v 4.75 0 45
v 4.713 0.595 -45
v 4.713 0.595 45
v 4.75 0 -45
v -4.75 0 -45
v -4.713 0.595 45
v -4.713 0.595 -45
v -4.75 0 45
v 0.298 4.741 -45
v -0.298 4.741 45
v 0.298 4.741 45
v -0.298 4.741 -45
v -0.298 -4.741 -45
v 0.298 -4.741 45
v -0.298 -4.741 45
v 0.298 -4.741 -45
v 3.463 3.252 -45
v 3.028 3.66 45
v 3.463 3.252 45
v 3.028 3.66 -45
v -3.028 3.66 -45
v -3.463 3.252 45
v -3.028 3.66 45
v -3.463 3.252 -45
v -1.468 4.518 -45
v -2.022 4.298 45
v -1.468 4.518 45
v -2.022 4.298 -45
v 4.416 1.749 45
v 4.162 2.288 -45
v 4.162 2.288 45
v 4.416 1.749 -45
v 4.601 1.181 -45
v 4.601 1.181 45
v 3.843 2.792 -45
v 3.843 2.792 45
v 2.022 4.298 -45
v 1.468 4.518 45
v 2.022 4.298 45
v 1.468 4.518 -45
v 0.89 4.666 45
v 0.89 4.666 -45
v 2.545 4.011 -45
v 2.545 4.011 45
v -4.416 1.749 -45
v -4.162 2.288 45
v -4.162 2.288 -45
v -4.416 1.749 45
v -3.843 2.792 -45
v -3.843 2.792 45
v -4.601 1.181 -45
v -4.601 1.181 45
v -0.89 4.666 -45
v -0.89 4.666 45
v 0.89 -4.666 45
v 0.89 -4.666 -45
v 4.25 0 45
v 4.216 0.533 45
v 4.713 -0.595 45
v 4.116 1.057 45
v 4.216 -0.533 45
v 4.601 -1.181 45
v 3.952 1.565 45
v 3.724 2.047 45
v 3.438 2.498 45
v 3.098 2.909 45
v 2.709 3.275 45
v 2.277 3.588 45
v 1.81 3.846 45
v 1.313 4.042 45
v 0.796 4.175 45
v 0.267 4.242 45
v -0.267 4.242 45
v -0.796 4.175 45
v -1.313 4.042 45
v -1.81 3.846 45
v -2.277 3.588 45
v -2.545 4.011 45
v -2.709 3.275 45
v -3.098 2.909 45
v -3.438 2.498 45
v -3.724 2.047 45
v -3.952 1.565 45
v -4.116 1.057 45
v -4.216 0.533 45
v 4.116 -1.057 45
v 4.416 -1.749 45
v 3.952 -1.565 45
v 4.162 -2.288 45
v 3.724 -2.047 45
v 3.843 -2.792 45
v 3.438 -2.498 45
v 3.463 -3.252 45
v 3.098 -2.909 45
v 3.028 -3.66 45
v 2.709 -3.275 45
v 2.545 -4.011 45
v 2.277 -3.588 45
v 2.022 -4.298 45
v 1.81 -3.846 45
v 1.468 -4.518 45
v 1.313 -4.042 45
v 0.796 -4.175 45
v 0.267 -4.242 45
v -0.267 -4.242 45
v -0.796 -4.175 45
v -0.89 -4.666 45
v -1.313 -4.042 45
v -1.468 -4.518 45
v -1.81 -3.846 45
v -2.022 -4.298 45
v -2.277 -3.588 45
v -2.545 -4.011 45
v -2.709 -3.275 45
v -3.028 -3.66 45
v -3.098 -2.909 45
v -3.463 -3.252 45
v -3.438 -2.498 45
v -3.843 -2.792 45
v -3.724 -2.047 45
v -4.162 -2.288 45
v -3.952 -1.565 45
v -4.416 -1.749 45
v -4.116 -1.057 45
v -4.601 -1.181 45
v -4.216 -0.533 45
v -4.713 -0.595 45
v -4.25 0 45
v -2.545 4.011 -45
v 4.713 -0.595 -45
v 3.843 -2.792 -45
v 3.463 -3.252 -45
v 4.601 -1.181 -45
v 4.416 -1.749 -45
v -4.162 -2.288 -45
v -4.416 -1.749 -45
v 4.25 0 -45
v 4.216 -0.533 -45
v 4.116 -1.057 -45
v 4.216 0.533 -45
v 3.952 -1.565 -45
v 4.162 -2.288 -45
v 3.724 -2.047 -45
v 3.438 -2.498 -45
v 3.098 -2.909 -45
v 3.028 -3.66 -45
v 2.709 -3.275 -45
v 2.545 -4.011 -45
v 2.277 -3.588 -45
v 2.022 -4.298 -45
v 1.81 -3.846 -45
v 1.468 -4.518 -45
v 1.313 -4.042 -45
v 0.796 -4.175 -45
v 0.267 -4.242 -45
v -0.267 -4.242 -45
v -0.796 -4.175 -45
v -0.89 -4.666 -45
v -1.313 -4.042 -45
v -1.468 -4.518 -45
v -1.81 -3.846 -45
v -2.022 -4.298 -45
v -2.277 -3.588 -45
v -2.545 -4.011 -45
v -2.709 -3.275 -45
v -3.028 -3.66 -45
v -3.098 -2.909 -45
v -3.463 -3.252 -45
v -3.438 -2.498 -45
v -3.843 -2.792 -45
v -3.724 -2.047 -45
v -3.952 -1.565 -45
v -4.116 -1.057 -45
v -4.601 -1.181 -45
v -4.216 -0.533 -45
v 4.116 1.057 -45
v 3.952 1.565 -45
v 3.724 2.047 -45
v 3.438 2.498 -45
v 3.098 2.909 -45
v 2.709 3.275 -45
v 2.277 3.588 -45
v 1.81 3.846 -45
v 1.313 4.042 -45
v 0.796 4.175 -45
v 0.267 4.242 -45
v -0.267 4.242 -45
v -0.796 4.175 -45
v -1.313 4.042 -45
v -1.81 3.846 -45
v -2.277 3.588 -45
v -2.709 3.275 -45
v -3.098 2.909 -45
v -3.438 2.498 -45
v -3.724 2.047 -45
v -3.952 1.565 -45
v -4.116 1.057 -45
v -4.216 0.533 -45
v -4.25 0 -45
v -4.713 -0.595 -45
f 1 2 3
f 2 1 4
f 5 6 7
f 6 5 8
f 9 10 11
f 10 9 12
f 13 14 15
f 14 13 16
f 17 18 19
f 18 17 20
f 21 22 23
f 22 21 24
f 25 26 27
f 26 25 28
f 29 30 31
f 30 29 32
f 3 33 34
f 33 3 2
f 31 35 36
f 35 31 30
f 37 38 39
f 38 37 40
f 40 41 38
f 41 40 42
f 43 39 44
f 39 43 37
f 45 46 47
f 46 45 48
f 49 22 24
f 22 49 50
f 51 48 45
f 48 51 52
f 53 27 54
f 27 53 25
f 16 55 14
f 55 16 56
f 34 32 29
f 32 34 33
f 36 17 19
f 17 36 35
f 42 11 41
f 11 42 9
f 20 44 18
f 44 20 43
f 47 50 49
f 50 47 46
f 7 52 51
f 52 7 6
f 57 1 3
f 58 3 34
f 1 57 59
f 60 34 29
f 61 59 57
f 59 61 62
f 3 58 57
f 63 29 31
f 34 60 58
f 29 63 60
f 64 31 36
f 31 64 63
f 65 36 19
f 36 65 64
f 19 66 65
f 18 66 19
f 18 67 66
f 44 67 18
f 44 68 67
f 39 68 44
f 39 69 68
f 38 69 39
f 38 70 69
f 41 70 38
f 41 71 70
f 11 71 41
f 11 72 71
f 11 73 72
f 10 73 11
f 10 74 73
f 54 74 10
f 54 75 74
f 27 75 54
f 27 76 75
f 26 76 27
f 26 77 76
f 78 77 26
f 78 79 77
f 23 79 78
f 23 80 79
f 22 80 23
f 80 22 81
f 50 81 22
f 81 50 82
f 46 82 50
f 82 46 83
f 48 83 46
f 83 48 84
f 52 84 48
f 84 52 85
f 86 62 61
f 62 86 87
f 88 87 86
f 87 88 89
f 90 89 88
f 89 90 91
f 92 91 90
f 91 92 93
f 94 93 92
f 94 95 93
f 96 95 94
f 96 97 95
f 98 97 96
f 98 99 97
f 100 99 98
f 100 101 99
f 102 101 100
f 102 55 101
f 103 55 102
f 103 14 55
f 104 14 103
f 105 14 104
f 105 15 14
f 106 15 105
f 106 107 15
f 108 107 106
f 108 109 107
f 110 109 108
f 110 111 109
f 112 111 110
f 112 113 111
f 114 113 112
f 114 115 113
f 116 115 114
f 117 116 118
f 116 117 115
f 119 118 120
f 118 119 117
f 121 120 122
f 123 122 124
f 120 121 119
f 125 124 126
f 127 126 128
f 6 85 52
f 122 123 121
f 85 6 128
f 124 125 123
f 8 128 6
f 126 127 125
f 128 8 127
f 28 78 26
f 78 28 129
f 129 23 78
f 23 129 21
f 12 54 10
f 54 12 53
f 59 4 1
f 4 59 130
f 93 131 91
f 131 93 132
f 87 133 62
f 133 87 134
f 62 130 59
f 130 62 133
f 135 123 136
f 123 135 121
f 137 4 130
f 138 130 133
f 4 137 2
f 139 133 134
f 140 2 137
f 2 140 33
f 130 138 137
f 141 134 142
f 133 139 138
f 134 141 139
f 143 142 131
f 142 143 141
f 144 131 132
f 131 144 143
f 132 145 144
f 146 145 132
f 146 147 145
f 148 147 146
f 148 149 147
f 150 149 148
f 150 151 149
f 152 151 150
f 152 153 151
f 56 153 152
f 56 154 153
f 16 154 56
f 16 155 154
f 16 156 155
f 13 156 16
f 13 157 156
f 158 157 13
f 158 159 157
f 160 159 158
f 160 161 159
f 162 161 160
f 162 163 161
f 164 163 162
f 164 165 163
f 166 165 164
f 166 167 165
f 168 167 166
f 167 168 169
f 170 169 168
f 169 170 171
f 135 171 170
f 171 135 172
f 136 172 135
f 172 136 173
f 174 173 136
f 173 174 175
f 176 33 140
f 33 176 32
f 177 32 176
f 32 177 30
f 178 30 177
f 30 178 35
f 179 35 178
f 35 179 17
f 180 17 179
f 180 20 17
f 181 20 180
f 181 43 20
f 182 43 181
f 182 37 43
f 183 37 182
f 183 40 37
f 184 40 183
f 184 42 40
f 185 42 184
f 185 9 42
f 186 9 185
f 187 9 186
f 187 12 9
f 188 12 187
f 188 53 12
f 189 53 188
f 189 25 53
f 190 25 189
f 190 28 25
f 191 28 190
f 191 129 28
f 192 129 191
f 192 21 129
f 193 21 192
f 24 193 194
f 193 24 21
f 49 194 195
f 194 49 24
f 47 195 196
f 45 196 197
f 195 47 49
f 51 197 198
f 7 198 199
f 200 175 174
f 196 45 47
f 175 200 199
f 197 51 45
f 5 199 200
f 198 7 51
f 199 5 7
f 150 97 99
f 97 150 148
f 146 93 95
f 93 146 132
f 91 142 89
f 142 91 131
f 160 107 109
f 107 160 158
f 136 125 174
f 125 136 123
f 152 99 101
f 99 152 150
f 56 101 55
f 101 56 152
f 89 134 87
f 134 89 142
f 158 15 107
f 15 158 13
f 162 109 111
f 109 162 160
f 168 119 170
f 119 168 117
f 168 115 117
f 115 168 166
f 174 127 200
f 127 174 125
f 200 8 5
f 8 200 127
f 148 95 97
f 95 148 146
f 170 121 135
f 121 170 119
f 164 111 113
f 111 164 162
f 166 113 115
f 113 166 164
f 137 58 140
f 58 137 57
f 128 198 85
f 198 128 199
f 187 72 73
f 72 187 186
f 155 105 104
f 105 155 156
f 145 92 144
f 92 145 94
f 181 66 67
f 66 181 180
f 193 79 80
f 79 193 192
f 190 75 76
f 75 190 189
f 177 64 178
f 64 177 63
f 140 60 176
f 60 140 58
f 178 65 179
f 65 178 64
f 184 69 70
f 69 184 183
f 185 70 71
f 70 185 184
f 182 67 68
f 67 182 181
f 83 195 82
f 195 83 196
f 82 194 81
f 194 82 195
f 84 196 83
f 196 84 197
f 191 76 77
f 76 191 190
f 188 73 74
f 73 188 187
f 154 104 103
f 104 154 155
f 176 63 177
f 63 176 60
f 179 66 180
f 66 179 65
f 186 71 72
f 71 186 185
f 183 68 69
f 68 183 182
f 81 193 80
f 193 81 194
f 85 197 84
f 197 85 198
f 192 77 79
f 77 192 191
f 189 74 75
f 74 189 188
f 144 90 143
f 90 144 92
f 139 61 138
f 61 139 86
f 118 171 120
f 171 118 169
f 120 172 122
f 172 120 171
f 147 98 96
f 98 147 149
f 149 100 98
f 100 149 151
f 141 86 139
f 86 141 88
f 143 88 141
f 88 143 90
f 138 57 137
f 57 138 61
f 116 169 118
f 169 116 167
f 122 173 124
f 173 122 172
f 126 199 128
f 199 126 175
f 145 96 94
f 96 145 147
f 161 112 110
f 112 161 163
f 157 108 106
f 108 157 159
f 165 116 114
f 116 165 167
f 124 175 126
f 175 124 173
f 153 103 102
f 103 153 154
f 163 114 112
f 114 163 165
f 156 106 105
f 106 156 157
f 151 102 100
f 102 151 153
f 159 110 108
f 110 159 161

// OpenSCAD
$fn = 50;


difference() {
	union() {
		translate(v = [0, 0, -45.0000000000]) {
			cylinder(h = 90, r = 4.7500000000);
		}
	}
	union() {
		translate(v = [0, 0, -100.0000000000]) {
			cylinder(h = 200, r = 4.2500000000);
		}
	}
}
